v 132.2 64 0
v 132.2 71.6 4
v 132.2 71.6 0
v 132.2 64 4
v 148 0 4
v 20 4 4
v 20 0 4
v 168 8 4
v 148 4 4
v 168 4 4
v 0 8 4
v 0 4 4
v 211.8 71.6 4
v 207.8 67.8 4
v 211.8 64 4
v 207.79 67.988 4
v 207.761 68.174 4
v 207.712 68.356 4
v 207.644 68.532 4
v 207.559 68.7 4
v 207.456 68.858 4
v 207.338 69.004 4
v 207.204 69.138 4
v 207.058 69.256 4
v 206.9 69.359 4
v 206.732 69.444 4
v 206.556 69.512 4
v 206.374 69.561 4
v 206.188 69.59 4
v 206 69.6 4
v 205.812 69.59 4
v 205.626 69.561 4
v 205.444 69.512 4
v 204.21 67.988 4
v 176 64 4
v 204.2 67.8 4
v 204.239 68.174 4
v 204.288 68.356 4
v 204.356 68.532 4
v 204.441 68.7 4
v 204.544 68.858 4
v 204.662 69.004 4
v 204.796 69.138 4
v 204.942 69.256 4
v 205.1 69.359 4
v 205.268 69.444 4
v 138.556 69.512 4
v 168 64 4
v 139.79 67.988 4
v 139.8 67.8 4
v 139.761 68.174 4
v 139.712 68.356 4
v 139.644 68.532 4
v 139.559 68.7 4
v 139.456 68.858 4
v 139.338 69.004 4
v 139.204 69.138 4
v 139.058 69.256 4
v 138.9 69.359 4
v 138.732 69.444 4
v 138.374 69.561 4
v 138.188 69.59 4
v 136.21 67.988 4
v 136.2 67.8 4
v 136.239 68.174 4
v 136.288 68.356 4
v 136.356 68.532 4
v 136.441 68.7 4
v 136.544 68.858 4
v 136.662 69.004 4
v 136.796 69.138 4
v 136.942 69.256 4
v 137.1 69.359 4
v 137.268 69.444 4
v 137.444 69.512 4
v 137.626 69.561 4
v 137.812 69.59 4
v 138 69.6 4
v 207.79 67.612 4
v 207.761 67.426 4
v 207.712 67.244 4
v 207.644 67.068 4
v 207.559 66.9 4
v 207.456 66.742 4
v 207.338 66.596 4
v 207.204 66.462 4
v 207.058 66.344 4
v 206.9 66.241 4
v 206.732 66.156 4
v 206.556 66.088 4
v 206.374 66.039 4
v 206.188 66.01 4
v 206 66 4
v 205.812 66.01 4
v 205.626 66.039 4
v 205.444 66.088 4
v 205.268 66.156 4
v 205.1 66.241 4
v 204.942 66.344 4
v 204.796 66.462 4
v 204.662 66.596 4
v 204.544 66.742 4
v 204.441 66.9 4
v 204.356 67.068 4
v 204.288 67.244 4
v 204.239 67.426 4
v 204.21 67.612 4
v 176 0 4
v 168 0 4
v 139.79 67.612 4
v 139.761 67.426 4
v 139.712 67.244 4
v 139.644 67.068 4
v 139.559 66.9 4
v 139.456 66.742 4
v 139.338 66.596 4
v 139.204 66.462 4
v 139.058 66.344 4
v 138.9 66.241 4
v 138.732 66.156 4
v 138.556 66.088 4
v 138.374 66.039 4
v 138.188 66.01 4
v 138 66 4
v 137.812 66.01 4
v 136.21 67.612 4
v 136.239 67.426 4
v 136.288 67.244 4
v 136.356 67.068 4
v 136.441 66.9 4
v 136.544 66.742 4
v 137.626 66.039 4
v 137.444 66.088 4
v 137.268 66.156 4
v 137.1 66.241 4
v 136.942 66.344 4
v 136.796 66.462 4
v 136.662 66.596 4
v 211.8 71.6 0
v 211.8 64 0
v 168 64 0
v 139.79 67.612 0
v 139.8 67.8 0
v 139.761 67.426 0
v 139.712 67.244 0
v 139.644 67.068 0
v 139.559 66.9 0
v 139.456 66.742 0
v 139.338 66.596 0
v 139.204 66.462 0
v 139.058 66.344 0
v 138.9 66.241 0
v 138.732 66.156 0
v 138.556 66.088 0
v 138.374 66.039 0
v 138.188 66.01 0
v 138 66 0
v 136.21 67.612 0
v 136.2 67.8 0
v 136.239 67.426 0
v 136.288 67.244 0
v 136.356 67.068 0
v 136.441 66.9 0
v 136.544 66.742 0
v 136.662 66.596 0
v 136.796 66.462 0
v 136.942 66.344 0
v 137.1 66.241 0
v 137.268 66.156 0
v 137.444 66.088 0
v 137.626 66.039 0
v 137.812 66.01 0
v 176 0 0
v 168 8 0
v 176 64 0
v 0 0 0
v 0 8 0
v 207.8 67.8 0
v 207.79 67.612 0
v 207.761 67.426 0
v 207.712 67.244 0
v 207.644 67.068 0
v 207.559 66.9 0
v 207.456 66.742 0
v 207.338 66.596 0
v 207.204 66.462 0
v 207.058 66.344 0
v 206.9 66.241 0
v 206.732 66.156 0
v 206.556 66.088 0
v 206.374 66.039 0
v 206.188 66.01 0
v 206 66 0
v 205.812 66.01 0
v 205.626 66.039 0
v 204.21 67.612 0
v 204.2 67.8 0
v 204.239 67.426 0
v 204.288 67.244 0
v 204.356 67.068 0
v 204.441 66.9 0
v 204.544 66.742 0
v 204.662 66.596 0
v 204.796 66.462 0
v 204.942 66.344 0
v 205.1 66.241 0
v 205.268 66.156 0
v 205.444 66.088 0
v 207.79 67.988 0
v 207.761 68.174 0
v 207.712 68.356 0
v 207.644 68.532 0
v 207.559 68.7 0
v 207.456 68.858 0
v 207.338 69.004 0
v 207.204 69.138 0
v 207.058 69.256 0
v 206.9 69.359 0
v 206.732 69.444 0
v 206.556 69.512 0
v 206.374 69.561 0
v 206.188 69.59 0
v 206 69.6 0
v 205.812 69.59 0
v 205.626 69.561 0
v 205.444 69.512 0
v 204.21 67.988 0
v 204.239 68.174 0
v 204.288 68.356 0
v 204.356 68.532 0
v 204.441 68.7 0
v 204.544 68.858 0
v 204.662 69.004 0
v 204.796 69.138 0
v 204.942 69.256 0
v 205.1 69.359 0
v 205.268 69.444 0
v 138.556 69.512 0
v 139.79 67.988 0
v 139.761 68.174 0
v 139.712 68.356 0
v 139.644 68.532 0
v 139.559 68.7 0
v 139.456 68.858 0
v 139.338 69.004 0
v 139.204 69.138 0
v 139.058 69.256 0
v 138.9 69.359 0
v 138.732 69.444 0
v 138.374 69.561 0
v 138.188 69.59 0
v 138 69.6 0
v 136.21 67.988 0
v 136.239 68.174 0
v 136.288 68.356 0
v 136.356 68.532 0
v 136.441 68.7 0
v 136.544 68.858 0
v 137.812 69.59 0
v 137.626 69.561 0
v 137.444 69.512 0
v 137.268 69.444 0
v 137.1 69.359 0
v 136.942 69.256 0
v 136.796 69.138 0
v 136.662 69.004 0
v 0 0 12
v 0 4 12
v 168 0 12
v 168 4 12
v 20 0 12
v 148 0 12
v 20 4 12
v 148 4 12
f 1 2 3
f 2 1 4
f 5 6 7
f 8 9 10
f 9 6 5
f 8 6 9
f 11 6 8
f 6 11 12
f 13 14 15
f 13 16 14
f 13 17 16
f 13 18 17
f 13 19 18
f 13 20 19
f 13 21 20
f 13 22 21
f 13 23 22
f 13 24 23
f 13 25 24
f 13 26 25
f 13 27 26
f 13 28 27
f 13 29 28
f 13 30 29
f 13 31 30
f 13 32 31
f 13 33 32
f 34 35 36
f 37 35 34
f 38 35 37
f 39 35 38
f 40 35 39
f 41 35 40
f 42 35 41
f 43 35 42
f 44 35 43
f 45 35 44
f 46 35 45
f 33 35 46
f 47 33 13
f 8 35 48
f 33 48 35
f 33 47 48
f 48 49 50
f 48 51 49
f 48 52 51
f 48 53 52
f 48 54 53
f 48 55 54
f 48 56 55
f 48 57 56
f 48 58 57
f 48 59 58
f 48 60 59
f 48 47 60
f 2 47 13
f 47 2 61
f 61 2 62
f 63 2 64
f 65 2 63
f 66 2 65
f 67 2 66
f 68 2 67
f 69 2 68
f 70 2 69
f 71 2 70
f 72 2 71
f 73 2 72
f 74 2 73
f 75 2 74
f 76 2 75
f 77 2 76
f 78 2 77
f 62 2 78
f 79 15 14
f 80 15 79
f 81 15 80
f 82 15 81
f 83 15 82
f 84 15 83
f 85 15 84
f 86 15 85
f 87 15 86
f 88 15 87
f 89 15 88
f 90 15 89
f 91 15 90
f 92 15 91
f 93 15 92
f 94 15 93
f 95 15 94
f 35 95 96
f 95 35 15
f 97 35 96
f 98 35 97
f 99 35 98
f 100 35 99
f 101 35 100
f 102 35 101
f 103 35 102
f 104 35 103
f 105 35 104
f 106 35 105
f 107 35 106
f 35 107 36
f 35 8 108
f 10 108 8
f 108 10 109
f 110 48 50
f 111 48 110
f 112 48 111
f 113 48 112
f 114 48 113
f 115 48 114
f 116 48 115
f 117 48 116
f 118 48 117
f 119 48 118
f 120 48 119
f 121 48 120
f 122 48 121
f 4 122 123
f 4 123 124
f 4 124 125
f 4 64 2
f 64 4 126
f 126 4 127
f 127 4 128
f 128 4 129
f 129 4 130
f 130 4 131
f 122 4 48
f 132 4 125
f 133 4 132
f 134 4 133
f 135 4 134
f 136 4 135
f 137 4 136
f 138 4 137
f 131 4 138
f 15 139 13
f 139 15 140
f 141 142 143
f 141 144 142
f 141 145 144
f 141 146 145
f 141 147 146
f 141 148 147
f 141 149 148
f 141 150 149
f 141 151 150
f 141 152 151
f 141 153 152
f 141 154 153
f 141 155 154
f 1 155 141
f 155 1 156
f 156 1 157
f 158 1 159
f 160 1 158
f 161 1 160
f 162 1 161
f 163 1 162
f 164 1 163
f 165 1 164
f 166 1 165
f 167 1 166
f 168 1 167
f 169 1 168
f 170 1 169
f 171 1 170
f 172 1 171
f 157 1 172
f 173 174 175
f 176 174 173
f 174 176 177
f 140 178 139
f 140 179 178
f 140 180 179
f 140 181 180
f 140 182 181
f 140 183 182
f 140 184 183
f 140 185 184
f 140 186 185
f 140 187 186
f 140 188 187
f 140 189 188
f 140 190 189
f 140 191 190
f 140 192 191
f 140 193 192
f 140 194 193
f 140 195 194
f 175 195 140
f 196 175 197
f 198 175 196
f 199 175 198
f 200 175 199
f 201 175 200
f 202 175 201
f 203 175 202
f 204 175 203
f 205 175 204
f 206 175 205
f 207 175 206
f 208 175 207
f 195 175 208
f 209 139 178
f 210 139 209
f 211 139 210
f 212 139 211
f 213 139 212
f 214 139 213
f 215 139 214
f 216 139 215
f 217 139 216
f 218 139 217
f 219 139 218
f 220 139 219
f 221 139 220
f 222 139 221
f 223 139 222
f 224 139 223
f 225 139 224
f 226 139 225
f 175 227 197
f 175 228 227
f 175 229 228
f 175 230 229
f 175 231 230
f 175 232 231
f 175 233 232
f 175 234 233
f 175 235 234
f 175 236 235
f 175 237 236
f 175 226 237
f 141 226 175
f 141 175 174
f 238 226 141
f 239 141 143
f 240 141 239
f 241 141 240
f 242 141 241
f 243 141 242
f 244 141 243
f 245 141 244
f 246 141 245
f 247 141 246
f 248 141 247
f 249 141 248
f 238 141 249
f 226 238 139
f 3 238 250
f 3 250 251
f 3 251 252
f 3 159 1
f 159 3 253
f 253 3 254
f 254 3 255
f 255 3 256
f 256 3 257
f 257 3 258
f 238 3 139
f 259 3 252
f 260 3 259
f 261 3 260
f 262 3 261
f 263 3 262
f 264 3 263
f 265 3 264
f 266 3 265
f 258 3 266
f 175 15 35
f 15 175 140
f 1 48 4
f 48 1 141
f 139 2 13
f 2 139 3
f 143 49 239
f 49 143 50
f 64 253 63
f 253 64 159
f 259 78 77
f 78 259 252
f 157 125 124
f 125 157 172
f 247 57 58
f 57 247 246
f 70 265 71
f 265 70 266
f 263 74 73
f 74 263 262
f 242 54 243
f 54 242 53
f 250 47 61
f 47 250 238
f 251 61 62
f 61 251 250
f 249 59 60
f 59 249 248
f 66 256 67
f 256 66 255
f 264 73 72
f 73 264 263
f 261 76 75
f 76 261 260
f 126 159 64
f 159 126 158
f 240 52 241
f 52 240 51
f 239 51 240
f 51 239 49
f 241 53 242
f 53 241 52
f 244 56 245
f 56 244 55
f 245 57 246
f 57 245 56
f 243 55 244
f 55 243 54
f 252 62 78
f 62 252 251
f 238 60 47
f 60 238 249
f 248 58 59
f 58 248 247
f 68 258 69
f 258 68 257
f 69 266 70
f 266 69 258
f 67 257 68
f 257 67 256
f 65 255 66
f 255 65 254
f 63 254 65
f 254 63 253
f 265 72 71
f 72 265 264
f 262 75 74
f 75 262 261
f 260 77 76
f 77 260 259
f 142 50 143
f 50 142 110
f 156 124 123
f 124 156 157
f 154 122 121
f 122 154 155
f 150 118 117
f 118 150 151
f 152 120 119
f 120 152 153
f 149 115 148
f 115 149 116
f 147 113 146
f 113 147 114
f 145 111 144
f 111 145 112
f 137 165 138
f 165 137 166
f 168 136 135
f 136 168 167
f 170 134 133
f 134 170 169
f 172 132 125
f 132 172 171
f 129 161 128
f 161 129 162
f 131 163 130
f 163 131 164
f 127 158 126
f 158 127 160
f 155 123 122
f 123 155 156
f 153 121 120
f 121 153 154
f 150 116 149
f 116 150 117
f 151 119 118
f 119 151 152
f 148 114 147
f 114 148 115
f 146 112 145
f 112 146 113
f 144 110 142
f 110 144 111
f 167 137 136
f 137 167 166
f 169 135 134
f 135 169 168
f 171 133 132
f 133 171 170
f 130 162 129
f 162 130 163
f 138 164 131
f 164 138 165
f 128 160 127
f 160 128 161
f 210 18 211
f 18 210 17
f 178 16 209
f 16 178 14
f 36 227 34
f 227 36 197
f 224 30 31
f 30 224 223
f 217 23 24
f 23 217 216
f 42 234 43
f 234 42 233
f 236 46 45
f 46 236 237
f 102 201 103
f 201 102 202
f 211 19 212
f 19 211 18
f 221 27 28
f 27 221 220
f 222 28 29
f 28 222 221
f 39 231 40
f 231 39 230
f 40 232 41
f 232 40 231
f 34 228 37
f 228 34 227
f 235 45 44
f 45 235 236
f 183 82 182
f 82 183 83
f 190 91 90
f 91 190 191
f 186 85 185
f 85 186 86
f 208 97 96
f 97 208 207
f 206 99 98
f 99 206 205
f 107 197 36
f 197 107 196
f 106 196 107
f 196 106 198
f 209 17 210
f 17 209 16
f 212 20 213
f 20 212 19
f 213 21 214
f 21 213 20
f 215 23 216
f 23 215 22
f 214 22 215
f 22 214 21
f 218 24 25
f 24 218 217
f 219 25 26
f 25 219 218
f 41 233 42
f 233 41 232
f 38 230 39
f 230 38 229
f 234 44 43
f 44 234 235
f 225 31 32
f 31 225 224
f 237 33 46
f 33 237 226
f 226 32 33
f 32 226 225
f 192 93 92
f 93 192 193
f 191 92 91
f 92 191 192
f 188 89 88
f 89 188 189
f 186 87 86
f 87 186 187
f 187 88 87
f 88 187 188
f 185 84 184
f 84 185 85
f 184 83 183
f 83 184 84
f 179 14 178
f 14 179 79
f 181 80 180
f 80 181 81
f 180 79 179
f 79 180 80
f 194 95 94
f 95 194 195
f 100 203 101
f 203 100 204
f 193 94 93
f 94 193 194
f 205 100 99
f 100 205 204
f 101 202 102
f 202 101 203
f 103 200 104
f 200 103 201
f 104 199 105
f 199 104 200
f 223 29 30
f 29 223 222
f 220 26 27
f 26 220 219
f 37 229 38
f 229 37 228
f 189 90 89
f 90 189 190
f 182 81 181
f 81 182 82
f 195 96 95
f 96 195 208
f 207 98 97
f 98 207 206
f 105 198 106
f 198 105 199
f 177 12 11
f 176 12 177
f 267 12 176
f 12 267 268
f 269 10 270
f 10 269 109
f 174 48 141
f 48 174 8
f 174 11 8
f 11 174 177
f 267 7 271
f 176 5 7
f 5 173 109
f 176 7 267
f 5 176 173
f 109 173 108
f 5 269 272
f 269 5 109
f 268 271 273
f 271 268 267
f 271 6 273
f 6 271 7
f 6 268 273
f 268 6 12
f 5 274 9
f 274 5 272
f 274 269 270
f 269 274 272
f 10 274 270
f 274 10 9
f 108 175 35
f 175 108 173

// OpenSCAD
$fn = 60;

t = 4;

wbox = 336;

d1 = 3.6;

dm = 68;

w = t + d1 / 2 + dm + d1 / 2 + t;
l = d1 + 4;

depth = 60;

cube ([wbox / 2, 8, t]);

cube ([20, t, 12]);
translate([wbox/2 - 20, 0, 0]) cube ([20, t, 12]);

translate([wbox/2 - w/2 + t, t + depth, 0]) difference() {
	  cube ([w, l, t]);
	  
	  // mounting holes
	  translate([w/2 - dm/2, l/2, 0]) cylinder(h = t * 2, d = d1);
	  translate([w/2 + dm/2, l/2, 0]) cylinder(h = t * 2, d = d1);
}

translate([wbox/2 - 8/2 + t, 0, 0]) cube([8, t + depth, t]);
